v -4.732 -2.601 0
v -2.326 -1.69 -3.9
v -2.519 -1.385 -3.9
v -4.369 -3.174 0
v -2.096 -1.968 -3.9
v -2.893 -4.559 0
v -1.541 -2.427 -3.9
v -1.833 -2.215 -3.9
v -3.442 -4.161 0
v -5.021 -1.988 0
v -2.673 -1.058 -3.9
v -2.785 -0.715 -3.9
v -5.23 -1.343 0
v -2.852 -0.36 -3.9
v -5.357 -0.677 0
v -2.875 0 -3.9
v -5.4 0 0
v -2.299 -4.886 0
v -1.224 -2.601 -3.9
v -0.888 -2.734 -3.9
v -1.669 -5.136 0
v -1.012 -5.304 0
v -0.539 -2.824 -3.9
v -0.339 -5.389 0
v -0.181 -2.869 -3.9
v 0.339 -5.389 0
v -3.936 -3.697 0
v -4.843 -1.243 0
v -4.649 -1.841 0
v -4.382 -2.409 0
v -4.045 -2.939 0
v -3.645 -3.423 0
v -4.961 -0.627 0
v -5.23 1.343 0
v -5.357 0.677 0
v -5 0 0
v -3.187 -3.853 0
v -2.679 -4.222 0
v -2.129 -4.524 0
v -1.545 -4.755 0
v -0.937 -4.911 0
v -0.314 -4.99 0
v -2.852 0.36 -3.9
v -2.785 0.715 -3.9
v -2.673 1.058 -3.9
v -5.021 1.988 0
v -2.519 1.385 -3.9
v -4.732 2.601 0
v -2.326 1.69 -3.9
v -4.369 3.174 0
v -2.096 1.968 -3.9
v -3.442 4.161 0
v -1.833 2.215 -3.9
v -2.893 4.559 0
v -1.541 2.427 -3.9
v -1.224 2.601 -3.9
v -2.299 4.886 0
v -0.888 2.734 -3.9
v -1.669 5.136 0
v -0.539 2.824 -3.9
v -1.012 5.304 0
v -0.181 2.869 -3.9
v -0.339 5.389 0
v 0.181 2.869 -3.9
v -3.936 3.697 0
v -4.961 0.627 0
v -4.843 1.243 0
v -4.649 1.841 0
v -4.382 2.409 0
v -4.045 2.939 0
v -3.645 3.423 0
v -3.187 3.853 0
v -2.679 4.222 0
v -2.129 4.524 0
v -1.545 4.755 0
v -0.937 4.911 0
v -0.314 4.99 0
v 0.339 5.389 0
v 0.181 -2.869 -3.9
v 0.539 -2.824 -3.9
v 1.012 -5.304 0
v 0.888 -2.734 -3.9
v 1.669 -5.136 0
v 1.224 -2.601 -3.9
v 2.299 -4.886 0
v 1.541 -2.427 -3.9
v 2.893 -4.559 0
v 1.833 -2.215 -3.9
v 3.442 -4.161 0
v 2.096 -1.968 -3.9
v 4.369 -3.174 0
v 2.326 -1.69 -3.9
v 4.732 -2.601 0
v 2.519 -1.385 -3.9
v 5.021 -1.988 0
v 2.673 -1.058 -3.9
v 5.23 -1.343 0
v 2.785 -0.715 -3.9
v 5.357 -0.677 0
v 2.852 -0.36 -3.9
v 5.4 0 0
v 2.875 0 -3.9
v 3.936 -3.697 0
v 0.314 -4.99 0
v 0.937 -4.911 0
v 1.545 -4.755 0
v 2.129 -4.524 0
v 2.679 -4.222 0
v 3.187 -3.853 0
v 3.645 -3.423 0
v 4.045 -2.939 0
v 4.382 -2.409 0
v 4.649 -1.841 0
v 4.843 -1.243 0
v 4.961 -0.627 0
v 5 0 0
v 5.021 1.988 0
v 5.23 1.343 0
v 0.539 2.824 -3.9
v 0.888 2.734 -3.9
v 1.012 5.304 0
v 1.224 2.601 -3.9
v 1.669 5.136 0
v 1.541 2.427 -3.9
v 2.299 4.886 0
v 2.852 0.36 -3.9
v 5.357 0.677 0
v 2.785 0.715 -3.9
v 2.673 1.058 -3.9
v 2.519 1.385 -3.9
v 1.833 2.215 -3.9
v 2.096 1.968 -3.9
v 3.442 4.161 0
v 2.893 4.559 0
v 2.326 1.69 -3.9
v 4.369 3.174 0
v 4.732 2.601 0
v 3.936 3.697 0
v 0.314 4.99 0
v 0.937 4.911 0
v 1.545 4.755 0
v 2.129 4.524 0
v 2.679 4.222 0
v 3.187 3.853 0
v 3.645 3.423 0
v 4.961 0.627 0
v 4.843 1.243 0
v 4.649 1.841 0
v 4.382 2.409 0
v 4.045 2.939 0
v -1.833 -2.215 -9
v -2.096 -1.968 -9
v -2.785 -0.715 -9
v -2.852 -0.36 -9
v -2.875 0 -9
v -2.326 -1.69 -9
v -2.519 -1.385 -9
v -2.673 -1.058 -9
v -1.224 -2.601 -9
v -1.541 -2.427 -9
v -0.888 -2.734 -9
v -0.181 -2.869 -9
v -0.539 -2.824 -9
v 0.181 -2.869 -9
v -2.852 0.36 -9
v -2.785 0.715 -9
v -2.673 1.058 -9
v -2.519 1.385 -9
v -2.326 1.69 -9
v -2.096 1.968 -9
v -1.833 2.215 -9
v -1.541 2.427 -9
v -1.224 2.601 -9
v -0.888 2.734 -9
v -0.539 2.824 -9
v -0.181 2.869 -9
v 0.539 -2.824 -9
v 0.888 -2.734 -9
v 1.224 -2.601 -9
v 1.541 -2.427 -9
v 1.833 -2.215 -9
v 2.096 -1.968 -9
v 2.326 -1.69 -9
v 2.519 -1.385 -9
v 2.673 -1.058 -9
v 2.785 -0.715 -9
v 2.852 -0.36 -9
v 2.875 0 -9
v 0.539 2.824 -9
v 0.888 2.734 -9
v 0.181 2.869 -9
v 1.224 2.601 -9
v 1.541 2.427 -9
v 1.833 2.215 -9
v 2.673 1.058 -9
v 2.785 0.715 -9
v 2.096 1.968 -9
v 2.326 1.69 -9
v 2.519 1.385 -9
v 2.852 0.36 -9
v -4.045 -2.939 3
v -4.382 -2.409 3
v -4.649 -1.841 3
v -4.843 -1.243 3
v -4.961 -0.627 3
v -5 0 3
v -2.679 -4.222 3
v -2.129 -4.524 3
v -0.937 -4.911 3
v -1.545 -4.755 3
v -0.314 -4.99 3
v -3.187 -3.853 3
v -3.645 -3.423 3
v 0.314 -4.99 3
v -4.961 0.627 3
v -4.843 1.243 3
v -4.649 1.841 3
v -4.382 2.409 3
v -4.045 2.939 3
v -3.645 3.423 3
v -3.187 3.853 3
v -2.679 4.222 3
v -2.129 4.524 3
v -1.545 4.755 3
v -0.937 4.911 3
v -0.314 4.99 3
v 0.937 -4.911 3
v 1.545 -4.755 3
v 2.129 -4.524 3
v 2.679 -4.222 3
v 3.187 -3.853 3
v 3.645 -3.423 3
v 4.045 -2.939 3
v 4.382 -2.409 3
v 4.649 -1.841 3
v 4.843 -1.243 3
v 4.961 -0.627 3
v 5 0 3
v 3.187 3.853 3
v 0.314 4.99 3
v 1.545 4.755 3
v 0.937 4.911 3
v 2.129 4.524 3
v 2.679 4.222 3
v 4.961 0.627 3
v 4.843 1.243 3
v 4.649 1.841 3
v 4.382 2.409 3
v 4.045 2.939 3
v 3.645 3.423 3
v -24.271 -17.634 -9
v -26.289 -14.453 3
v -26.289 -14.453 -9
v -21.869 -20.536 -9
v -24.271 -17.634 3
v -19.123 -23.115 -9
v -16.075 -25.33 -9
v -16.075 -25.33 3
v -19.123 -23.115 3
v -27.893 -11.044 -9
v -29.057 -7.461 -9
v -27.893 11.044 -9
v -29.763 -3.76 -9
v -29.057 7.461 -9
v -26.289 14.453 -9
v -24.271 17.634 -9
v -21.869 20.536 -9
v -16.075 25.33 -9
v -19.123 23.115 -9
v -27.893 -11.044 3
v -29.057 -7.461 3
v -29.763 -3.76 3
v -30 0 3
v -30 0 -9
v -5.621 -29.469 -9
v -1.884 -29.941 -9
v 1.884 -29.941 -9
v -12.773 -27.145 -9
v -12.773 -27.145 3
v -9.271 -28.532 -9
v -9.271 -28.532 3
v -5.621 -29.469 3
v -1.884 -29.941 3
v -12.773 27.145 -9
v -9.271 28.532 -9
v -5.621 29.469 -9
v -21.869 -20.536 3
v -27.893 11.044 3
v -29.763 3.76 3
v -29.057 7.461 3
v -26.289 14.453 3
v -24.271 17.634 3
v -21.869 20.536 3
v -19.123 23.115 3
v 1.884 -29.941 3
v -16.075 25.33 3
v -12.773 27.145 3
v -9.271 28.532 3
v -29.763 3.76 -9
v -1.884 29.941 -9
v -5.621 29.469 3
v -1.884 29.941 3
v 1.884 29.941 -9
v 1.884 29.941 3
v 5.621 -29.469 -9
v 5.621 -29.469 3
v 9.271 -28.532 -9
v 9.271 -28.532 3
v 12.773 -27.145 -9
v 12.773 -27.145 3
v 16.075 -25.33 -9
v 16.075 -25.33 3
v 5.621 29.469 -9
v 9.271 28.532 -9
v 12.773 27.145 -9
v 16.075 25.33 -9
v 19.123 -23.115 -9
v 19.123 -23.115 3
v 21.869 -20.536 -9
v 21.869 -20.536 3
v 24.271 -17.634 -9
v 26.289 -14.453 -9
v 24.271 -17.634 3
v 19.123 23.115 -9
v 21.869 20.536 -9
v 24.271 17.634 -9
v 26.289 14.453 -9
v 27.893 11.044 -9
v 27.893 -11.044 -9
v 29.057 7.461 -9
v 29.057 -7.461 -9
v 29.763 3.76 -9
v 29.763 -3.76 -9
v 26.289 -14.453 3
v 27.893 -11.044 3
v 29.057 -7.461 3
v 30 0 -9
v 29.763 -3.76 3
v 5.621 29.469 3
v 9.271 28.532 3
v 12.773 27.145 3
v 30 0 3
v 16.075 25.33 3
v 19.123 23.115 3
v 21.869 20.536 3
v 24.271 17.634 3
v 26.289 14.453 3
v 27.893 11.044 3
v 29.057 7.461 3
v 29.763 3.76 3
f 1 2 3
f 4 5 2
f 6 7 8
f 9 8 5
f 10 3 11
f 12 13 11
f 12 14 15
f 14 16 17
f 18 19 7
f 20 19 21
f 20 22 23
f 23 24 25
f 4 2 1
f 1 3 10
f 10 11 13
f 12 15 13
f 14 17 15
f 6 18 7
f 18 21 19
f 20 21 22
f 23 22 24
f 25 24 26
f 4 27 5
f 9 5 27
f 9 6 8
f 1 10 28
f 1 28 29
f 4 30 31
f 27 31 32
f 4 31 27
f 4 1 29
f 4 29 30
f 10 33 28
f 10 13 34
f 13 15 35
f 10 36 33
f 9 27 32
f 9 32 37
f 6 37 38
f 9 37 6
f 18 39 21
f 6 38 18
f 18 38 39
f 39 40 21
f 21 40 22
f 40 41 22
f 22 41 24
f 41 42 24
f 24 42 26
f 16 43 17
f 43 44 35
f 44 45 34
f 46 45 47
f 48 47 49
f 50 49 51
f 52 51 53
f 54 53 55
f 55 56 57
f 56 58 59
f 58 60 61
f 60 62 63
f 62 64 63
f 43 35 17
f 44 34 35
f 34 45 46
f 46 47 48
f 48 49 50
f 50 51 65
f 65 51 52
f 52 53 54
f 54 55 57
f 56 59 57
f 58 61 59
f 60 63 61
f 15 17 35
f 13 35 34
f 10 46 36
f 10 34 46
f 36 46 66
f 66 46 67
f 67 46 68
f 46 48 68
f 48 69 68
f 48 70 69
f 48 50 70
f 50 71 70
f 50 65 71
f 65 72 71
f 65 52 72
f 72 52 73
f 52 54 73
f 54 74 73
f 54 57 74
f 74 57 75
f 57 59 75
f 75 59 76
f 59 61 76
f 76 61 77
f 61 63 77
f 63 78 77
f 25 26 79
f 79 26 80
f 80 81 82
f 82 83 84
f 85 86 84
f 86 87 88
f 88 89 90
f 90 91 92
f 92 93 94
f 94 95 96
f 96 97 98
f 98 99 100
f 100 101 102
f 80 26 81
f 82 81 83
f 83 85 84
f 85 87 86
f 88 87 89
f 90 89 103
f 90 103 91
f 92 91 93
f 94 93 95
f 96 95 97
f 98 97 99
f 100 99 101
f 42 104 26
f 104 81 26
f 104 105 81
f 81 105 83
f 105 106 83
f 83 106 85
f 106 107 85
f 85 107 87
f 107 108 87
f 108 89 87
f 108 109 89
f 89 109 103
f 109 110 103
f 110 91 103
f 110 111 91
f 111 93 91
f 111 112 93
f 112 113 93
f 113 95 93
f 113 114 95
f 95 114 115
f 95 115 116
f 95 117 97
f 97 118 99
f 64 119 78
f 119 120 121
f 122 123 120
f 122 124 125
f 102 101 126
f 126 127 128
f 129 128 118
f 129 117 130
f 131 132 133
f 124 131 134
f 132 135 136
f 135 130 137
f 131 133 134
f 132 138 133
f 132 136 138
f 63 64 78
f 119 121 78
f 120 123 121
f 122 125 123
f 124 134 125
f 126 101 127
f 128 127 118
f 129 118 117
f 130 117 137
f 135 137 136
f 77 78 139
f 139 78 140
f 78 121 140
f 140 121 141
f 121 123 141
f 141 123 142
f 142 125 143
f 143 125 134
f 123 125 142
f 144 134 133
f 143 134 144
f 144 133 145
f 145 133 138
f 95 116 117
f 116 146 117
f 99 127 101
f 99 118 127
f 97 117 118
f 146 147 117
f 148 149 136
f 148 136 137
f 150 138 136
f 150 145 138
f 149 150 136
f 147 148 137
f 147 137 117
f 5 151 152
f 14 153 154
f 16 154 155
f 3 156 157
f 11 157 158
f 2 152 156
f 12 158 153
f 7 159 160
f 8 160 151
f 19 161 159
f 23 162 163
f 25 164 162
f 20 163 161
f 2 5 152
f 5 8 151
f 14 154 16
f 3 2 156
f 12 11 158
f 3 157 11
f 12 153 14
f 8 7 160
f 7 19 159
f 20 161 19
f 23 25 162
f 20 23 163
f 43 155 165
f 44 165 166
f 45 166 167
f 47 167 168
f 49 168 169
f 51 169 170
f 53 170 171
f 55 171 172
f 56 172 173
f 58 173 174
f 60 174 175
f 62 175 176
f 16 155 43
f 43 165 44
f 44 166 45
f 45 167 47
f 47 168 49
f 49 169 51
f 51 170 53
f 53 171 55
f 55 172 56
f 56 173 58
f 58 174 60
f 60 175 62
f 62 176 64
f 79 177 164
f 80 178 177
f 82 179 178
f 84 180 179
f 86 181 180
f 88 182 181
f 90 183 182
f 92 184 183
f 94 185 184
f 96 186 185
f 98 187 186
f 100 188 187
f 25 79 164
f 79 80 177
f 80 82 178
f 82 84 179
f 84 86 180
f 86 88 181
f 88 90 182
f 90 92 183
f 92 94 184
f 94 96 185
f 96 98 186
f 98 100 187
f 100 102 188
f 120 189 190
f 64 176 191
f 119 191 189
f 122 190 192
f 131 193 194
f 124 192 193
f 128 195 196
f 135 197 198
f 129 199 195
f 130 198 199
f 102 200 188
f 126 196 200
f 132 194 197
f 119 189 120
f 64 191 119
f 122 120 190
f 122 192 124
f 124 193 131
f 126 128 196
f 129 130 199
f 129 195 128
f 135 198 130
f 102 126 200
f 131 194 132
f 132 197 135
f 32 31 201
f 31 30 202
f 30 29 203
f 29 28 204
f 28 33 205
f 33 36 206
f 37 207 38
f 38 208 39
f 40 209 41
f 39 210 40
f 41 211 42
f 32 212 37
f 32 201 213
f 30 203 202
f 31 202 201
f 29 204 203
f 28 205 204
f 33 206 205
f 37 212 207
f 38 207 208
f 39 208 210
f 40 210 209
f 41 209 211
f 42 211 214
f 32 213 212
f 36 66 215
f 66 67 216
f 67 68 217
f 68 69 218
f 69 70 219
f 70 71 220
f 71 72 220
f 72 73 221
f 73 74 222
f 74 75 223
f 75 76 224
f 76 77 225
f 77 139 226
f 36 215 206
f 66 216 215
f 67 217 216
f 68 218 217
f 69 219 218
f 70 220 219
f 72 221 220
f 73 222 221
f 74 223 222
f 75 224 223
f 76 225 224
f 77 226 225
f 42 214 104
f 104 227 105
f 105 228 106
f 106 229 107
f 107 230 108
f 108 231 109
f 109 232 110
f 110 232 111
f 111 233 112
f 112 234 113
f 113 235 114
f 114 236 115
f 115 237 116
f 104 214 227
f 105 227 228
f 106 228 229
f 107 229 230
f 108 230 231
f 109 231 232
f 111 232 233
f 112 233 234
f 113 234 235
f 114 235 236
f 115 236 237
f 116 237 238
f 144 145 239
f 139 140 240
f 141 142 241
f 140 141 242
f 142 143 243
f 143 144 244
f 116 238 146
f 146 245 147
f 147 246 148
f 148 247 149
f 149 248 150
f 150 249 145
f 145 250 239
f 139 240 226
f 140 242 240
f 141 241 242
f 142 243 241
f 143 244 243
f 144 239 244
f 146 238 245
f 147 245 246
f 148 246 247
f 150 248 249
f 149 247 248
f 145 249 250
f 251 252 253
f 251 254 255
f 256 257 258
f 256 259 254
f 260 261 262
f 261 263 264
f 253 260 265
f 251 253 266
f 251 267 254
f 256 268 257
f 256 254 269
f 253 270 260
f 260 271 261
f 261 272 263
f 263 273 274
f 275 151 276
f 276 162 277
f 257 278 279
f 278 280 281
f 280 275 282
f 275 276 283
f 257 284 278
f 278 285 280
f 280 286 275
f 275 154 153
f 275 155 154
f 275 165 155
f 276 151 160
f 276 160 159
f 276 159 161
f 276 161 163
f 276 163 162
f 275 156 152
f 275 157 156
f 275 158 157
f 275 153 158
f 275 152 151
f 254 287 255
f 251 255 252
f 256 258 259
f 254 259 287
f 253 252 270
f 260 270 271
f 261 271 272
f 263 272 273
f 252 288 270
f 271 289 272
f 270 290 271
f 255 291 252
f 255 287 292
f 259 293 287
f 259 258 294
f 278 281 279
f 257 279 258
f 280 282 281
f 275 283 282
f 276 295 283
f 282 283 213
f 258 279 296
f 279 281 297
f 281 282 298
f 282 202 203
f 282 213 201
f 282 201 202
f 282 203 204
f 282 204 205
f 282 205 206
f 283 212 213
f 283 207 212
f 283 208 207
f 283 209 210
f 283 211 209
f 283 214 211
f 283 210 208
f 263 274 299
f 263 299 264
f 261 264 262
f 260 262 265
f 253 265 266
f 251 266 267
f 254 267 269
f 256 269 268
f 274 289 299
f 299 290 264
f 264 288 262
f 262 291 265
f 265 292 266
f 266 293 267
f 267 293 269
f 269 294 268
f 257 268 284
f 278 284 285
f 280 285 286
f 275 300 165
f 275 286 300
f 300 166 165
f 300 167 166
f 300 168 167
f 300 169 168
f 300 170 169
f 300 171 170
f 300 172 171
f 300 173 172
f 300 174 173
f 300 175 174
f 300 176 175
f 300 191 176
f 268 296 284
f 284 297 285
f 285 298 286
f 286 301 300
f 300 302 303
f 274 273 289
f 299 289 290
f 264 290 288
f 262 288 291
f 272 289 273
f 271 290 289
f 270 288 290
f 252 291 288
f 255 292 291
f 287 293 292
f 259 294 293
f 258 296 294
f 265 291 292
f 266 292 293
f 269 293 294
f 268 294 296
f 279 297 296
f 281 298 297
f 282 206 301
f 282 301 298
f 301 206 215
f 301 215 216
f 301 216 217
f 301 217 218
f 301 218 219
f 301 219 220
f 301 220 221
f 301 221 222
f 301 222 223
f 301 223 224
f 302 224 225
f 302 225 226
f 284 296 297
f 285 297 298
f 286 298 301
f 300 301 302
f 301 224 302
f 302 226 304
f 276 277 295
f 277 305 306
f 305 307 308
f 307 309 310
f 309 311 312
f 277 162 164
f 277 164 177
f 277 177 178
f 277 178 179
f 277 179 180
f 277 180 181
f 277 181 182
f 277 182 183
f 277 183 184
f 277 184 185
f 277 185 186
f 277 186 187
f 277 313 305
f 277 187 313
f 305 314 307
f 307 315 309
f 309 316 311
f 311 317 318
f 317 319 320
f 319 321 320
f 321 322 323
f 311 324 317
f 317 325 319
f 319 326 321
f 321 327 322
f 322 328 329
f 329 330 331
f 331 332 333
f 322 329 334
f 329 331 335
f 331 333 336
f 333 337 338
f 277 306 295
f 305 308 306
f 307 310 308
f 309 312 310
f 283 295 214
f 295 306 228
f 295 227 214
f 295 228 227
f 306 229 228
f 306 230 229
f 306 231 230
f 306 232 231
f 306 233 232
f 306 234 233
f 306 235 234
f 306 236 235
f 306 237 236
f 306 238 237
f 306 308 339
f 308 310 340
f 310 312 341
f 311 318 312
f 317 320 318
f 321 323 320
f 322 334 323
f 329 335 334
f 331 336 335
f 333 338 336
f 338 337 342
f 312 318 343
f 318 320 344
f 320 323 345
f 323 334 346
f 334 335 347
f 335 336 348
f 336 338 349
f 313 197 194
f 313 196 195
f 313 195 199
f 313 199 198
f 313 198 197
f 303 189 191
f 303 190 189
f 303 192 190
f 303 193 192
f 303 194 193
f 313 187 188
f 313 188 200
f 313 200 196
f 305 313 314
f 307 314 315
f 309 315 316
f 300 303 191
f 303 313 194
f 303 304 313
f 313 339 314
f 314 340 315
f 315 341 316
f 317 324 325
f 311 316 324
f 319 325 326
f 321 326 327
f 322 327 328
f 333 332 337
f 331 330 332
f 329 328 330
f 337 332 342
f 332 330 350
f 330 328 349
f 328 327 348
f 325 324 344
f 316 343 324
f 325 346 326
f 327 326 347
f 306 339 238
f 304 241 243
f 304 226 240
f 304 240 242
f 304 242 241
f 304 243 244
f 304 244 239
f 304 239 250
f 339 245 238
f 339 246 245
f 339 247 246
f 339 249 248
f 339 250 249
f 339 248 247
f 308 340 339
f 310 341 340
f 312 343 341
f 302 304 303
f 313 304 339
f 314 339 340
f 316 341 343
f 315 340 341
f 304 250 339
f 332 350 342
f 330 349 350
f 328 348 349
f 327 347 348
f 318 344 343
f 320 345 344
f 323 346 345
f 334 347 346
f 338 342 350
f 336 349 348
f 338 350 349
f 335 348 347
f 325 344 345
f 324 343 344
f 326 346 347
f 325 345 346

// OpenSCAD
$fn = 50;


difference() {
	union() {
		translate(v = [0, 0, -9.0000000000]) {
			cylinder(h = 12, r = 30.0000000000);
		}
	}
	union() {
		translate(v = [0, 0, 0]) {
			rotate(a = [0, 0, 0]) {
				difference() {
					union() {
						translate(v = [0, 0, -12.0000000000]) {
							cylinder(h = 12, r = 2.6000000000);
						}
						translate(v = [0, 0, -3.9000000000]) {
							cylinder(h = 3.9000000000, r1 = 2.8750000000, r2 = 5.4000000000);
						}
						translate(v = [0, 0, -12.0000000000]) {
							cylinder(h = 12, r = 2.8750000000);
						}
						translate(v = [0, 0, -12.0000000000]) {
							cylinder(h = 12, r = 2.6000000000);
						}
					}
					union();
				}
			}
		}
		#cylinder(h = 3, r = 5.0000000000);
	}
}
